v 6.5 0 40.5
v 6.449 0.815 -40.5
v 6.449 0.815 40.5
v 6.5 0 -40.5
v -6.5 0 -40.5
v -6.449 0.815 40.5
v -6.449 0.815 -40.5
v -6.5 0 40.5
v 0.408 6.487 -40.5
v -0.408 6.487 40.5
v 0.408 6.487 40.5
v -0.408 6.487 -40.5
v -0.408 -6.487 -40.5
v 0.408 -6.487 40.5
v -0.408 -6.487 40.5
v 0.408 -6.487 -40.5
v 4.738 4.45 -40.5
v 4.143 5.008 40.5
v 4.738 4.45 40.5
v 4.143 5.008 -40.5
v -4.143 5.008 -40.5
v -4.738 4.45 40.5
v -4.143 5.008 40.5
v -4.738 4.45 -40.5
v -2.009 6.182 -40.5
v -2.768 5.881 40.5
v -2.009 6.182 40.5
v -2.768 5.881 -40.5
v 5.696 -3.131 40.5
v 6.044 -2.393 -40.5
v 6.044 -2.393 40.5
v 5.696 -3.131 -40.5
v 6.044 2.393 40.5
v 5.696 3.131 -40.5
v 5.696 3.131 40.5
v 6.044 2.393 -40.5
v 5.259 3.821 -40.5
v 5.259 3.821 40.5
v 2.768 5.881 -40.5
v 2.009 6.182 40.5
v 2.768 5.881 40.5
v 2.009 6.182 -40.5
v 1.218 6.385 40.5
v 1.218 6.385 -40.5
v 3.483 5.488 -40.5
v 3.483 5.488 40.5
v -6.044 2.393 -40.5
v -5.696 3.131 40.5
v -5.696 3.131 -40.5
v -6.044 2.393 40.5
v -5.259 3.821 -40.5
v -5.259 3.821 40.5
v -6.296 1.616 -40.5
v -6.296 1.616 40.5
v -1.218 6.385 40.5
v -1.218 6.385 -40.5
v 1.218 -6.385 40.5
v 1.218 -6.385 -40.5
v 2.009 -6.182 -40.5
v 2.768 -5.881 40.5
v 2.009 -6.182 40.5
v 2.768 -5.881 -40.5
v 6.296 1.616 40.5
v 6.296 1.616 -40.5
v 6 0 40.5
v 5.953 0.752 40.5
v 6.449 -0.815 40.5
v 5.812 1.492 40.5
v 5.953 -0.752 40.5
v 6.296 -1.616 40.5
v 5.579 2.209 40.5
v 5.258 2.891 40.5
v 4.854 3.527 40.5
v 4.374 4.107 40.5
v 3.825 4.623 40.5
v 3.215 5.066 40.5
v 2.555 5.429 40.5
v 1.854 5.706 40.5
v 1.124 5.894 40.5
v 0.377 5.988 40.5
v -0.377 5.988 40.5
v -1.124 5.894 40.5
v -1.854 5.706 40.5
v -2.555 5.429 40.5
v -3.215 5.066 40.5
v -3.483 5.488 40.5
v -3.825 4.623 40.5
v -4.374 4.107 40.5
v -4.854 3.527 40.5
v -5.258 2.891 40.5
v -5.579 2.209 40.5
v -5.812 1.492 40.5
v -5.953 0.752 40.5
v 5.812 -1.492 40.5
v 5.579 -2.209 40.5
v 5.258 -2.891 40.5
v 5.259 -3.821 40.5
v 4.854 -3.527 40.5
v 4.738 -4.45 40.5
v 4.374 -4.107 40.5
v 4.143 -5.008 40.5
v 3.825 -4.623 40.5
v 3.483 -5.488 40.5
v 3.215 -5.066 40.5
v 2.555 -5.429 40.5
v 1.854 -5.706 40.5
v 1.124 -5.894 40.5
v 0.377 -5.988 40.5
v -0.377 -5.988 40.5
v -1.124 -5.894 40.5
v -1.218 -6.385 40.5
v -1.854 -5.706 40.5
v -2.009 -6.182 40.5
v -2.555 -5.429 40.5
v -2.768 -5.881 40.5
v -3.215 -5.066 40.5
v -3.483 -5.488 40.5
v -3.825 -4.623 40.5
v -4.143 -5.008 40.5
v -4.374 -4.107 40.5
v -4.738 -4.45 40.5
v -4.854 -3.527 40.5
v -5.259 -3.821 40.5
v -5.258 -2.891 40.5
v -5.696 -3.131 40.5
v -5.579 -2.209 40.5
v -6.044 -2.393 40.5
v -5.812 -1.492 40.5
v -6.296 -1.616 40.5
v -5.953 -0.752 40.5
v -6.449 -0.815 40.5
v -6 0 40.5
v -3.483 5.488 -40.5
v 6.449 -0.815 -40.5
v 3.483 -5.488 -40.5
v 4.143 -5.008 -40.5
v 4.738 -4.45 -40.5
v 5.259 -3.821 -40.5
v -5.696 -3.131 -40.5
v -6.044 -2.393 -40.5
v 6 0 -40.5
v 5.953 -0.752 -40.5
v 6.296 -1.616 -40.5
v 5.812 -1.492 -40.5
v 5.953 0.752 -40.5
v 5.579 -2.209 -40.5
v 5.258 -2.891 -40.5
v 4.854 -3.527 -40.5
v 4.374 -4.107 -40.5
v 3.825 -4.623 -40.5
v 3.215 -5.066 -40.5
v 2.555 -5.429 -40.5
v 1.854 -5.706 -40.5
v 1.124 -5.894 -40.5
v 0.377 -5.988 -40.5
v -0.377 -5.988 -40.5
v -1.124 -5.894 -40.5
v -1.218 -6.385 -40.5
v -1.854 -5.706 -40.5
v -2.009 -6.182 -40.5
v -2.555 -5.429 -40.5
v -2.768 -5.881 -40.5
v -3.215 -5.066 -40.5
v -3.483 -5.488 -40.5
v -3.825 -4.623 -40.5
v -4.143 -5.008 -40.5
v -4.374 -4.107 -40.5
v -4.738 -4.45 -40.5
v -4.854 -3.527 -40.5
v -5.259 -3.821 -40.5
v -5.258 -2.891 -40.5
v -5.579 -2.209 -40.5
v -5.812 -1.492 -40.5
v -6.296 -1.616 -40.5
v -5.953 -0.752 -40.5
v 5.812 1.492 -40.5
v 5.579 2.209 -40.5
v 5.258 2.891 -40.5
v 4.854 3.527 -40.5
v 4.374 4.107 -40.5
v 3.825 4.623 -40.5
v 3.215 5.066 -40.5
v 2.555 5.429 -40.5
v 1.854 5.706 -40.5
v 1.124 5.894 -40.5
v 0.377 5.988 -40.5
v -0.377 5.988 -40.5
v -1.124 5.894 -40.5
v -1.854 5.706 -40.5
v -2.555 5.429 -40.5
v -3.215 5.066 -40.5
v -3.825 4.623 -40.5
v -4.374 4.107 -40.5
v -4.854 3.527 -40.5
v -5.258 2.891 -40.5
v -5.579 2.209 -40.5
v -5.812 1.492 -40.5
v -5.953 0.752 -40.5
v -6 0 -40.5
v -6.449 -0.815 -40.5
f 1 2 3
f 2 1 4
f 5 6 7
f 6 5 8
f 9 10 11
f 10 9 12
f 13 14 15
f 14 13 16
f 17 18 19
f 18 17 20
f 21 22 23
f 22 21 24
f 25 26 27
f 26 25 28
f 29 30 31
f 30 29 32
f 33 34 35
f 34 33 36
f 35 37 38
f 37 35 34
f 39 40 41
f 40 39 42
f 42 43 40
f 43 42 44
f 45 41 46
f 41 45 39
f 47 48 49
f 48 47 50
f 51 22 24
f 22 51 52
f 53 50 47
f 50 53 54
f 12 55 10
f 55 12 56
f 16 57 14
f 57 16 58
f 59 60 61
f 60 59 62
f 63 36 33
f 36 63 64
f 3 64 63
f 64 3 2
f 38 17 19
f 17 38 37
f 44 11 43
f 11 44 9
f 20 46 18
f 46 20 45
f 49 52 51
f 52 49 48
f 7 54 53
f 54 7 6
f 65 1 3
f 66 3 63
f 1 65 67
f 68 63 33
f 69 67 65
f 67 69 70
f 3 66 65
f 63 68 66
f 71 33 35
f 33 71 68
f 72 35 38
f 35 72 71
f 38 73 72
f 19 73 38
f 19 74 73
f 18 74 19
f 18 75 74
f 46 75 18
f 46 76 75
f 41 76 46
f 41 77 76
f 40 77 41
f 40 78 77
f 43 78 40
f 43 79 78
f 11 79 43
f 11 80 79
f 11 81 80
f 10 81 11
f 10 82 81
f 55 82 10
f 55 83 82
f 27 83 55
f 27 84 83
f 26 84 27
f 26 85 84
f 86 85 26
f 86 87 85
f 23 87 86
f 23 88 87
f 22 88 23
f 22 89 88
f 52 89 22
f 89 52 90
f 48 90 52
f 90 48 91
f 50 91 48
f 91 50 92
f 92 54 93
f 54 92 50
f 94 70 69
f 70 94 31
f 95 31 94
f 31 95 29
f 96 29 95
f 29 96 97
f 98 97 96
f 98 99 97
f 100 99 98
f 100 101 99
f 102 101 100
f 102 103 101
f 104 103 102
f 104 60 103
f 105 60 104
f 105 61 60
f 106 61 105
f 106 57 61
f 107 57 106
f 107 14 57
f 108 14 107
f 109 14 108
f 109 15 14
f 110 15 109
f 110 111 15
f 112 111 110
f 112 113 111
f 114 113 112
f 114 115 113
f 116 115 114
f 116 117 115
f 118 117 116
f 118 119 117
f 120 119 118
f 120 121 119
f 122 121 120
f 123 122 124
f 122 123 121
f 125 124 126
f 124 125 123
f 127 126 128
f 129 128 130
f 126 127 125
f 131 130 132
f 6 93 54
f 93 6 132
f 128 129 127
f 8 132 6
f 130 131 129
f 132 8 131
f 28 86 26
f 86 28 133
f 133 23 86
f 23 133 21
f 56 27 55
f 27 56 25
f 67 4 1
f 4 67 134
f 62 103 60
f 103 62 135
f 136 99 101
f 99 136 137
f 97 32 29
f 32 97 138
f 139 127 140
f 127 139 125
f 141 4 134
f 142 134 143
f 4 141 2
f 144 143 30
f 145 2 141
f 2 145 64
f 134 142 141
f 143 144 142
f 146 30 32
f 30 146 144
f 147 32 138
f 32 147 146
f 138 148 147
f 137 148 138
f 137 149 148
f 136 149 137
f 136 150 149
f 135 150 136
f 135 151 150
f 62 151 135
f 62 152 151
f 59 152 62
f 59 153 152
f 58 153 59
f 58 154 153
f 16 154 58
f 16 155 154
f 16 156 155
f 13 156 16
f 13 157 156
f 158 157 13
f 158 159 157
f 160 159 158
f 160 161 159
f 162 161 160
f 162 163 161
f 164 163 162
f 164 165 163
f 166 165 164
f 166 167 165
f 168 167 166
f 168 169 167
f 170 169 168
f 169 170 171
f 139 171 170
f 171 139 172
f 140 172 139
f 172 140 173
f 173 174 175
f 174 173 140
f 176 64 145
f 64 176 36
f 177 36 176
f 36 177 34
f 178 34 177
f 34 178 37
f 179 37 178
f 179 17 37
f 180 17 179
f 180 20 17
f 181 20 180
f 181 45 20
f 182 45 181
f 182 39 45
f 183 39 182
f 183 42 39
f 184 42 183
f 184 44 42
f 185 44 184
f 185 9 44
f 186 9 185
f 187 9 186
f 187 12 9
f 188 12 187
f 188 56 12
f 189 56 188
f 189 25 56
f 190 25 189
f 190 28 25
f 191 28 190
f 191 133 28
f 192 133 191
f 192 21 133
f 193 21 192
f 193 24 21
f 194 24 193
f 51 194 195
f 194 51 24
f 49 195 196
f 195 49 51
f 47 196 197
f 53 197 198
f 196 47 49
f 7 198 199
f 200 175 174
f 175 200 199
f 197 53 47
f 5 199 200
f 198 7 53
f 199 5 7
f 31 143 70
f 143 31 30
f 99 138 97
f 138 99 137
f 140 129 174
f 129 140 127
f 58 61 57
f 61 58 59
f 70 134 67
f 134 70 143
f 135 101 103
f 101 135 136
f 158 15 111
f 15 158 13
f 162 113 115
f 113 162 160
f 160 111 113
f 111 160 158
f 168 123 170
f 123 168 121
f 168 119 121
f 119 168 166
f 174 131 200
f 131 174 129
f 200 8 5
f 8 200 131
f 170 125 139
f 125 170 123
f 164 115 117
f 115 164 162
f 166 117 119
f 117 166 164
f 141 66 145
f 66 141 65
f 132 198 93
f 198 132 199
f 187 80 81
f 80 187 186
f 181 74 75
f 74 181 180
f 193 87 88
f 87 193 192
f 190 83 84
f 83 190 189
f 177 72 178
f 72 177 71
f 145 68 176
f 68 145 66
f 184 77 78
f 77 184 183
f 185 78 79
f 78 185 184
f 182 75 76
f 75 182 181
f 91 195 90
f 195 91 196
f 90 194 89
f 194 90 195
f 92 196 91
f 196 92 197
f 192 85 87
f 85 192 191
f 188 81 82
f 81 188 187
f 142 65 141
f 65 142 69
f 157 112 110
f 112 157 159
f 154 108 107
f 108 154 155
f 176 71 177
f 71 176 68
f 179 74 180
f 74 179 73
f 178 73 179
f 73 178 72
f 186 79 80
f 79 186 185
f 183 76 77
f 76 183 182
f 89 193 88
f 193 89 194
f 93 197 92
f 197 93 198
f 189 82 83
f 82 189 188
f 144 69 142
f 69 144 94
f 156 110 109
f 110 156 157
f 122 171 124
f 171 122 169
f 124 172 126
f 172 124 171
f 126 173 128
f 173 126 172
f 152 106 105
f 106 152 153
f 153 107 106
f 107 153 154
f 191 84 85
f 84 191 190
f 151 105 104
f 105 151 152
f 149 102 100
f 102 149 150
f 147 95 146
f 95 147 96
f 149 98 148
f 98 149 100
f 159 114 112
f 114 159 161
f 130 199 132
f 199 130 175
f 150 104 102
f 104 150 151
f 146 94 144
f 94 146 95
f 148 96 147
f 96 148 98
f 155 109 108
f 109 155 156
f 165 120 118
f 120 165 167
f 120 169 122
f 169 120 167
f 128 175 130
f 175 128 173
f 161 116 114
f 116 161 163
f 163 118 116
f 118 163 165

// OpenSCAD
$fn = 50;


difference() {
	union() {
		translate(v = [0, 0, -40.5000000000]) {
			cylinder(h = 81, r = 6.5000000000);
		}
	}
	union() {
		translate(v = [0, 0, -100.0000000000]) {
			cylinder(h = 200, r = 6);
		}
	}
}
